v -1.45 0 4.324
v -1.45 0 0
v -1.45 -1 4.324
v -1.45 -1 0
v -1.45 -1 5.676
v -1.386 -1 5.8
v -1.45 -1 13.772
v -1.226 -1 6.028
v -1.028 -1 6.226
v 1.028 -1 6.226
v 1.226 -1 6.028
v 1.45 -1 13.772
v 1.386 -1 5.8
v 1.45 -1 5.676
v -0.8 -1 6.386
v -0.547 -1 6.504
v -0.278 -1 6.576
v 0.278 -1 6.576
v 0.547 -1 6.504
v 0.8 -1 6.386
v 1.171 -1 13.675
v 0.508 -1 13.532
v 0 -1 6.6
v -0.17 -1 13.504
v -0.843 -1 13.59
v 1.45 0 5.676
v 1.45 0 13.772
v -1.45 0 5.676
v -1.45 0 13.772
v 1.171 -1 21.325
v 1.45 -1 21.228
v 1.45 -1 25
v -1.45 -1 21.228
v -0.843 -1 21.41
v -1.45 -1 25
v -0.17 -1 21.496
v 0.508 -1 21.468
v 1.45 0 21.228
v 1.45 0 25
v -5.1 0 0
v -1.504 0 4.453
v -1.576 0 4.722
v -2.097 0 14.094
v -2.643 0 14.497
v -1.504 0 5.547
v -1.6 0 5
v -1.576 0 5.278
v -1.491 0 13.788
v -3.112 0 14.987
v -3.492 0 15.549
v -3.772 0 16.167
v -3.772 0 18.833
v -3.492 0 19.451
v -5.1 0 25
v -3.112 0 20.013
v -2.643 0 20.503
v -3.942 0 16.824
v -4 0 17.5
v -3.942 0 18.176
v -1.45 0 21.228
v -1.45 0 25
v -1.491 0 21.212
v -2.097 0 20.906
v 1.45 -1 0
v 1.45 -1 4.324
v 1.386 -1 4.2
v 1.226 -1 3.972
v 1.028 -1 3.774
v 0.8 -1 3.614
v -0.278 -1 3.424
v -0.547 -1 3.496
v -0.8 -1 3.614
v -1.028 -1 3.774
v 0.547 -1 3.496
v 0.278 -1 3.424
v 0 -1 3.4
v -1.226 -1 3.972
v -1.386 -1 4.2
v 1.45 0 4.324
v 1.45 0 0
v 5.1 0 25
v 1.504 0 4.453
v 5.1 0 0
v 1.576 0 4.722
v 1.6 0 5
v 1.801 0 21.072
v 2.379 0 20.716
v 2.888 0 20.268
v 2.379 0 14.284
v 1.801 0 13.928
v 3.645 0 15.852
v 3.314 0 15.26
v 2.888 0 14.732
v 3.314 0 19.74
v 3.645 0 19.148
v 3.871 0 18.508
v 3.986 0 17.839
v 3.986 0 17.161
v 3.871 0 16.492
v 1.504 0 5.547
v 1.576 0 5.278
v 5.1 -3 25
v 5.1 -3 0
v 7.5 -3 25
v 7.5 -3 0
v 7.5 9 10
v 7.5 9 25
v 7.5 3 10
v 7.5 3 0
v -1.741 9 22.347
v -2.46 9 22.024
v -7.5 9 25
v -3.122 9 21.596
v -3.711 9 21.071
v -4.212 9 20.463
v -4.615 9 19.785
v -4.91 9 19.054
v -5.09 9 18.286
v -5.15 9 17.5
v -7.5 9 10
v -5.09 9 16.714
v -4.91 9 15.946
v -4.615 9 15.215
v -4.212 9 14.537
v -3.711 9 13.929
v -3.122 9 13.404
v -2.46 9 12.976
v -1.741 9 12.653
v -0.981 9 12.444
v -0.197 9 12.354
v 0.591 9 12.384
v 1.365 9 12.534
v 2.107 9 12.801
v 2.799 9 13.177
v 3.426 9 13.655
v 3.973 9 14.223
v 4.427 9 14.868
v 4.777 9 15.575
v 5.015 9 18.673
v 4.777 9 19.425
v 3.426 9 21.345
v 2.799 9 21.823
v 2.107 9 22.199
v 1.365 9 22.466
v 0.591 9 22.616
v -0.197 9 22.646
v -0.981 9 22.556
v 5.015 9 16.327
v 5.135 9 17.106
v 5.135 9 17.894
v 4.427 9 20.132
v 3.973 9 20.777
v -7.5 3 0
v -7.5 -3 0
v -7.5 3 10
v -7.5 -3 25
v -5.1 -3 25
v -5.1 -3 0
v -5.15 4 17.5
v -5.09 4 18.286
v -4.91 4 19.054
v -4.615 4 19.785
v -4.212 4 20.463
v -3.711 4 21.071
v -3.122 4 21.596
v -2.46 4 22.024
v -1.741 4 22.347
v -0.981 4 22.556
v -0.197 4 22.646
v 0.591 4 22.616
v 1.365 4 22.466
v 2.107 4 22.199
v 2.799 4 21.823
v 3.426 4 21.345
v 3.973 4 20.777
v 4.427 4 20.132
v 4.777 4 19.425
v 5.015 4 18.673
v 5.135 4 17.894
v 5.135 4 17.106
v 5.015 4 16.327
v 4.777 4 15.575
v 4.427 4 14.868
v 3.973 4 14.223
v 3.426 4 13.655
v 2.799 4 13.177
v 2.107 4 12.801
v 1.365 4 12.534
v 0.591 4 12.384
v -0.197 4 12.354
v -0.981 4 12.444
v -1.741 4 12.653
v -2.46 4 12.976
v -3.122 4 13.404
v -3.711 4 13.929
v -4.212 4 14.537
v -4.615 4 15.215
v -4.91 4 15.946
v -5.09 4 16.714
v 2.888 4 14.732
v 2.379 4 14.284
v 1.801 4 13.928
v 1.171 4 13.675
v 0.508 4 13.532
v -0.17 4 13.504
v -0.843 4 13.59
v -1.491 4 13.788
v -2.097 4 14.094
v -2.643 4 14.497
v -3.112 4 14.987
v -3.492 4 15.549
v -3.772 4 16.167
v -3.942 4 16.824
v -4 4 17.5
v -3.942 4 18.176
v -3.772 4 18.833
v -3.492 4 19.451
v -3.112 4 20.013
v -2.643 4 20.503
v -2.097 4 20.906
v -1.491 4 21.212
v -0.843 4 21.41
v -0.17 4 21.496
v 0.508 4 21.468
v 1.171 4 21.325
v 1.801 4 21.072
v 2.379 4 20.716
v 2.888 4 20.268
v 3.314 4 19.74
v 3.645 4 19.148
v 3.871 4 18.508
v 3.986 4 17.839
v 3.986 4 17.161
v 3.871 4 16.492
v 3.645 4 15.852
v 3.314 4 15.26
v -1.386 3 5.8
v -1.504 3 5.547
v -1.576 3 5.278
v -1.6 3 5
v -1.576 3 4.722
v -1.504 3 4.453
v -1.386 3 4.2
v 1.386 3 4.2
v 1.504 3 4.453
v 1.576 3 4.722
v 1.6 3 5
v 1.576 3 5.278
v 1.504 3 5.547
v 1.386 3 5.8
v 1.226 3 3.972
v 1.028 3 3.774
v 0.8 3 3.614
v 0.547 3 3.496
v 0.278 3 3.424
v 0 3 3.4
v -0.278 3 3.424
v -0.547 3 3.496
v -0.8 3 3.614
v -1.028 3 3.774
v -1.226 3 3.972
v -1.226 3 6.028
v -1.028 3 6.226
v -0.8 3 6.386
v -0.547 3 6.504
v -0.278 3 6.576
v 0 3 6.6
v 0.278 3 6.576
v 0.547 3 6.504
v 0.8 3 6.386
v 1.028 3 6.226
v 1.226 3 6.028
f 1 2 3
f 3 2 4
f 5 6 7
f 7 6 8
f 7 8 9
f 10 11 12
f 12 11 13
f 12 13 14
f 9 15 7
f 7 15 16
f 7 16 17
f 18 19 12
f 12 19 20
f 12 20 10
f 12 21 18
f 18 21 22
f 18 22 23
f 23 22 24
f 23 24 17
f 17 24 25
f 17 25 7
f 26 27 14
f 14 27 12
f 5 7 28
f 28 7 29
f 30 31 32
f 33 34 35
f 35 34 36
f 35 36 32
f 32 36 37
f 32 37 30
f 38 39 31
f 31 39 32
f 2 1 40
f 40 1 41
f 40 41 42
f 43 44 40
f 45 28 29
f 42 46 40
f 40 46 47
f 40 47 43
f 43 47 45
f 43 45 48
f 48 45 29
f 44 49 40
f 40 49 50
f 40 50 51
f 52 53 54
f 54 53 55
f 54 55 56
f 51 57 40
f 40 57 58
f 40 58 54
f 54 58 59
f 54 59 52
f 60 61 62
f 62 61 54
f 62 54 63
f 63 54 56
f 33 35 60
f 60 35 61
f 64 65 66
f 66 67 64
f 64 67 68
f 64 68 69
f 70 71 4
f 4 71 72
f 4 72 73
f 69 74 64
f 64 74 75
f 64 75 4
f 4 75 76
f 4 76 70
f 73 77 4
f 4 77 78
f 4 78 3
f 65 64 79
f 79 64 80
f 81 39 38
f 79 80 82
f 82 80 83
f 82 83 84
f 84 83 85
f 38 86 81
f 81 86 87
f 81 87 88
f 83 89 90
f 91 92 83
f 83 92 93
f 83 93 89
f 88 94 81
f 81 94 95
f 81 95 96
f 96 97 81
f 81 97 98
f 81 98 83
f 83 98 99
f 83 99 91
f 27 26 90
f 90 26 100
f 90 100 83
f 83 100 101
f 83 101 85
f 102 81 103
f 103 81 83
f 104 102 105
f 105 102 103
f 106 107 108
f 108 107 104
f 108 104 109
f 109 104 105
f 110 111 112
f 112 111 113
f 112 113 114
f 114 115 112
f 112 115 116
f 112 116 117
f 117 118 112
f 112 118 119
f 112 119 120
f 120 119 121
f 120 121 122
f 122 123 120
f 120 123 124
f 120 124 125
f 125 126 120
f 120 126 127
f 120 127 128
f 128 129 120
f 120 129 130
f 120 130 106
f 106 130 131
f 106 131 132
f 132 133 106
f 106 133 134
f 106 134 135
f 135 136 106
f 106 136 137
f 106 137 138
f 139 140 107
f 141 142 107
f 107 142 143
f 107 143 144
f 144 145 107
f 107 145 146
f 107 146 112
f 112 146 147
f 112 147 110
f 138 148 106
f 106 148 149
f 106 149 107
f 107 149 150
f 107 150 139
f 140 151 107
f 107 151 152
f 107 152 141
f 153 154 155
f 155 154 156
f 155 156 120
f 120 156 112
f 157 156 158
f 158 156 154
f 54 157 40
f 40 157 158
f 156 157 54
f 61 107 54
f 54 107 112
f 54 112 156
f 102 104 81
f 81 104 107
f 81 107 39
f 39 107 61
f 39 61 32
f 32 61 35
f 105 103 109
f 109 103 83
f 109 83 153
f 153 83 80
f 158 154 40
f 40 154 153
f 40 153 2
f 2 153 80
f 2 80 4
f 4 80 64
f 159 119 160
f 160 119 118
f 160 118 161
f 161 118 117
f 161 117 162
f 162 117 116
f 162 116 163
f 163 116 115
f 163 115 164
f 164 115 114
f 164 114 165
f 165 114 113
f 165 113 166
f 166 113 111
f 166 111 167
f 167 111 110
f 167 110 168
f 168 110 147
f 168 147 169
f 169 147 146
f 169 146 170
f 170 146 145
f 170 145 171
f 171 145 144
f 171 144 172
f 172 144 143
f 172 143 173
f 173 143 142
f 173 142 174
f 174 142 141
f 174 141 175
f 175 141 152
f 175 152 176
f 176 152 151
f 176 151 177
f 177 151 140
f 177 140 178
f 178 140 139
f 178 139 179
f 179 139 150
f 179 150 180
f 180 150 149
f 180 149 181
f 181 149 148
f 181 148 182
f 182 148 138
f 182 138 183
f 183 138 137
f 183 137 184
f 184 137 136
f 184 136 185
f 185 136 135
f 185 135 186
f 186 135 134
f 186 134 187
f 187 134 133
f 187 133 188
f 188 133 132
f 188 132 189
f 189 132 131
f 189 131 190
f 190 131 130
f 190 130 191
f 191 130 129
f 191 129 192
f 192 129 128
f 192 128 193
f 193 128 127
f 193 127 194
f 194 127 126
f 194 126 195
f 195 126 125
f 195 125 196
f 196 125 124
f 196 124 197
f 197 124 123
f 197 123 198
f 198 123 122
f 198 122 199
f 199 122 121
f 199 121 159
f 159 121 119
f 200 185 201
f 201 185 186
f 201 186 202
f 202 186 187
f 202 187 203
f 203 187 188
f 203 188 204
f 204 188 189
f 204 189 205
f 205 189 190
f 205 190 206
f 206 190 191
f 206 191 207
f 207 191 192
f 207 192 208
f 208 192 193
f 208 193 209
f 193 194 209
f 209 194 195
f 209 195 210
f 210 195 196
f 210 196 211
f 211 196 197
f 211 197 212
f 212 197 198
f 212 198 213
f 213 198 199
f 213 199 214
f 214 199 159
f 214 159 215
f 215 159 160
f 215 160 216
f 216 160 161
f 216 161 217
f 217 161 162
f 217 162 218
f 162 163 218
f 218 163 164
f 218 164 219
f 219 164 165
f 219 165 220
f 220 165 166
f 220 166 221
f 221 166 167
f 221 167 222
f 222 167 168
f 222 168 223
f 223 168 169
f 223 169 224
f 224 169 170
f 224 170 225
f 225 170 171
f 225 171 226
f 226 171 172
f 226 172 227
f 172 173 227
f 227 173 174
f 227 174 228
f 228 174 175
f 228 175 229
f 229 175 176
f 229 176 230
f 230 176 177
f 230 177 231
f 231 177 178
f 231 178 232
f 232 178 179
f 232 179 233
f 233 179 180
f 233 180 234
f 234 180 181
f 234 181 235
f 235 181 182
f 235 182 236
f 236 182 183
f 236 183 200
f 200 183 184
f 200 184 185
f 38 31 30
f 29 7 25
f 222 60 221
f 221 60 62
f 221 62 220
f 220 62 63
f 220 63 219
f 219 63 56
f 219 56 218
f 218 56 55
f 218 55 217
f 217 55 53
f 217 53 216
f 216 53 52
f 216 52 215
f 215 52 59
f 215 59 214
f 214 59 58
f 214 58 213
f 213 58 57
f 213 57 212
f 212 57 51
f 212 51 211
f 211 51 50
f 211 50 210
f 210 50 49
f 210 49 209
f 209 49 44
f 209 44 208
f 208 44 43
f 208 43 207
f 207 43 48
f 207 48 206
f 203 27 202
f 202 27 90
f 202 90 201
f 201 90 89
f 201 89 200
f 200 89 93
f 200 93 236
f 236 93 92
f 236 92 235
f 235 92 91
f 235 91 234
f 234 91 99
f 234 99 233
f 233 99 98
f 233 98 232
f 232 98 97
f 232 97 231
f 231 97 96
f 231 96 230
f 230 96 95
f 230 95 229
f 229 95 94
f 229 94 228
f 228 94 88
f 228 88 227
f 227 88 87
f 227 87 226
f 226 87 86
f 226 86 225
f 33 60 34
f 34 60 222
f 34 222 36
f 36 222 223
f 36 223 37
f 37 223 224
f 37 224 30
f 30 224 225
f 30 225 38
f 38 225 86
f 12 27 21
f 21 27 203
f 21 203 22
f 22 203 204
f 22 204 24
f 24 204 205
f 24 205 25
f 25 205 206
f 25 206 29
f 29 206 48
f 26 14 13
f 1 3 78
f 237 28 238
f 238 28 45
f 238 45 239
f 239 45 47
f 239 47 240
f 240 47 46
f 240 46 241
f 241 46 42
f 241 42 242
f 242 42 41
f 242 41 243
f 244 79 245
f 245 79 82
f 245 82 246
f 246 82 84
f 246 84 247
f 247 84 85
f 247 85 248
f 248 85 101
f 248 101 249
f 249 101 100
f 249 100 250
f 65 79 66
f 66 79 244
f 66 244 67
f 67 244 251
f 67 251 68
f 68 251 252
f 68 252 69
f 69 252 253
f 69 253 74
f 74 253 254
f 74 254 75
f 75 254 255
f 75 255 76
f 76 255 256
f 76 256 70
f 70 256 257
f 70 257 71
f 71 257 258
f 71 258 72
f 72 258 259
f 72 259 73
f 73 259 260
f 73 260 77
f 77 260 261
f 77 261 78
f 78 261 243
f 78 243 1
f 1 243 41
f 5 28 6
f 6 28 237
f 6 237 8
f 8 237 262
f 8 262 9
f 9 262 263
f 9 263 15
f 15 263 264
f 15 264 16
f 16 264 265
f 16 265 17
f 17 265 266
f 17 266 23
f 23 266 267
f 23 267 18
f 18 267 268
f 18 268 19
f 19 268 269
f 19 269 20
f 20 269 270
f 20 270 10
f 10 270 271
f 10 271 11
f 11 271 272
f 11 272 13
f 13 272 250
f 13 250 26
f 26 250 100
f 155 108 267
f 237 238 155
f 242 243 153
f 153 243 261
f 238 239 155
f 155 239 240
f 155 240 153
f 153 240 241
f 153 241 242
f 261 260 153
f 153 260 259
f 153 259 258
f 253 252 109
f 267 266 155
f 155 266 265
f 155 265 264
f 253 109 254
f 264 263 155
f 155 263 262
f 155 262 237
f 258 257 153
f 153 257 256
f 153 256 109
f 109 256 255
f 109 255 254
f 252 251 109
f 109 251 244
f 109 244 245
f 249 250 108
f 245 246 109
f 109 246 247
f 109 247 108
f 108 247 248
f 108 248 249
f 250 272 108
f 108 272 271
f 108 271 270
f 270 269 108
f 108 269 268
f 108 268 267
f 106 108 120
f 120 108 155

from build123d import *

# Parameters (mm, degrees)
MAIN_DEPTH         = 25
SKETCH2_R          = 5.15
ROLLINGHOLE_DEPTH  = 5
SKETCH3_R          = 4
CUT_EXTRUDE2_DEPTH = 8
SKETCH4_R          = 1.6
FIXHOLE_DEPTH      = 13
SKETCH5_W          = 10
SKETCH5_H          = 6
CUT_EXTRUDE4_DEPTH = 16


with BuildPart() as part:
    # Sketch1 → Main (new body)
    with BuildSketch(Plane.XY):
        Polygon((-5.1, 0), (-5.1, -3), (-7.5, -3), (-7.5, 9), (7.5, 9), (7.5, -3), (5.1, -3), (5.1, 0), (1.45, 0), (1.45, -1), (-1.45, -1), (-1.45, 0), align=None)
    extrude(amount=MAIN_DEPTH)

    # Sketch2 → RollingHole (cut)
    with BuildSketch(Plane(origin=(0, 9, 0), x_dir=(1, 0, 0), z_dir=(0, 1, 0))):
        with Locations((0, -17.5)):
            Circle(SKETCH2_R)
    extrude(amount=-ROLLINGHOLE_DEPTH, mode=Mode.SUBTRACT)

    # Sketch3 → Cut-Extrude2 (cut, through all)
    with BuildSketch(Plane(origin=(0, 4, 0), x_dir=(1, 0, 0), z_dir=(0, 1, 0))):
        with Locations((0, -17.5)):
            Circle(SKETCH3_R)
    extrude(amount=-CUT_EXTRUDE2_DEPTH, mode=Mode.SUBTRACT)

    # Sketch4 → FixHole (cut, through all)
    with BuildSketch(Plane(origin=(0, 9, 0), x_dir=(1, 0, 0), z_dir=(0, 1, 0))):
        with Locations((0, -5)):
            Circle(SKETCH4_R)
    extrude(amount=-FIXHOLE_DEPTH, mode=Mode.SUBTRACT)

    # Sketch5 → Cut-Extrude4 (cut, through all)
    with BuildSketch(Plane.ZY.offset(7.5)):
        with Locations((5, 6)):
            Rectangle(SKETCH5_W, SKETCH5_H)
    extrude(amount=-CUT_EXTRUDE4_DEPTH, mode=Mode.SUBTRACT)


solid = part.part
